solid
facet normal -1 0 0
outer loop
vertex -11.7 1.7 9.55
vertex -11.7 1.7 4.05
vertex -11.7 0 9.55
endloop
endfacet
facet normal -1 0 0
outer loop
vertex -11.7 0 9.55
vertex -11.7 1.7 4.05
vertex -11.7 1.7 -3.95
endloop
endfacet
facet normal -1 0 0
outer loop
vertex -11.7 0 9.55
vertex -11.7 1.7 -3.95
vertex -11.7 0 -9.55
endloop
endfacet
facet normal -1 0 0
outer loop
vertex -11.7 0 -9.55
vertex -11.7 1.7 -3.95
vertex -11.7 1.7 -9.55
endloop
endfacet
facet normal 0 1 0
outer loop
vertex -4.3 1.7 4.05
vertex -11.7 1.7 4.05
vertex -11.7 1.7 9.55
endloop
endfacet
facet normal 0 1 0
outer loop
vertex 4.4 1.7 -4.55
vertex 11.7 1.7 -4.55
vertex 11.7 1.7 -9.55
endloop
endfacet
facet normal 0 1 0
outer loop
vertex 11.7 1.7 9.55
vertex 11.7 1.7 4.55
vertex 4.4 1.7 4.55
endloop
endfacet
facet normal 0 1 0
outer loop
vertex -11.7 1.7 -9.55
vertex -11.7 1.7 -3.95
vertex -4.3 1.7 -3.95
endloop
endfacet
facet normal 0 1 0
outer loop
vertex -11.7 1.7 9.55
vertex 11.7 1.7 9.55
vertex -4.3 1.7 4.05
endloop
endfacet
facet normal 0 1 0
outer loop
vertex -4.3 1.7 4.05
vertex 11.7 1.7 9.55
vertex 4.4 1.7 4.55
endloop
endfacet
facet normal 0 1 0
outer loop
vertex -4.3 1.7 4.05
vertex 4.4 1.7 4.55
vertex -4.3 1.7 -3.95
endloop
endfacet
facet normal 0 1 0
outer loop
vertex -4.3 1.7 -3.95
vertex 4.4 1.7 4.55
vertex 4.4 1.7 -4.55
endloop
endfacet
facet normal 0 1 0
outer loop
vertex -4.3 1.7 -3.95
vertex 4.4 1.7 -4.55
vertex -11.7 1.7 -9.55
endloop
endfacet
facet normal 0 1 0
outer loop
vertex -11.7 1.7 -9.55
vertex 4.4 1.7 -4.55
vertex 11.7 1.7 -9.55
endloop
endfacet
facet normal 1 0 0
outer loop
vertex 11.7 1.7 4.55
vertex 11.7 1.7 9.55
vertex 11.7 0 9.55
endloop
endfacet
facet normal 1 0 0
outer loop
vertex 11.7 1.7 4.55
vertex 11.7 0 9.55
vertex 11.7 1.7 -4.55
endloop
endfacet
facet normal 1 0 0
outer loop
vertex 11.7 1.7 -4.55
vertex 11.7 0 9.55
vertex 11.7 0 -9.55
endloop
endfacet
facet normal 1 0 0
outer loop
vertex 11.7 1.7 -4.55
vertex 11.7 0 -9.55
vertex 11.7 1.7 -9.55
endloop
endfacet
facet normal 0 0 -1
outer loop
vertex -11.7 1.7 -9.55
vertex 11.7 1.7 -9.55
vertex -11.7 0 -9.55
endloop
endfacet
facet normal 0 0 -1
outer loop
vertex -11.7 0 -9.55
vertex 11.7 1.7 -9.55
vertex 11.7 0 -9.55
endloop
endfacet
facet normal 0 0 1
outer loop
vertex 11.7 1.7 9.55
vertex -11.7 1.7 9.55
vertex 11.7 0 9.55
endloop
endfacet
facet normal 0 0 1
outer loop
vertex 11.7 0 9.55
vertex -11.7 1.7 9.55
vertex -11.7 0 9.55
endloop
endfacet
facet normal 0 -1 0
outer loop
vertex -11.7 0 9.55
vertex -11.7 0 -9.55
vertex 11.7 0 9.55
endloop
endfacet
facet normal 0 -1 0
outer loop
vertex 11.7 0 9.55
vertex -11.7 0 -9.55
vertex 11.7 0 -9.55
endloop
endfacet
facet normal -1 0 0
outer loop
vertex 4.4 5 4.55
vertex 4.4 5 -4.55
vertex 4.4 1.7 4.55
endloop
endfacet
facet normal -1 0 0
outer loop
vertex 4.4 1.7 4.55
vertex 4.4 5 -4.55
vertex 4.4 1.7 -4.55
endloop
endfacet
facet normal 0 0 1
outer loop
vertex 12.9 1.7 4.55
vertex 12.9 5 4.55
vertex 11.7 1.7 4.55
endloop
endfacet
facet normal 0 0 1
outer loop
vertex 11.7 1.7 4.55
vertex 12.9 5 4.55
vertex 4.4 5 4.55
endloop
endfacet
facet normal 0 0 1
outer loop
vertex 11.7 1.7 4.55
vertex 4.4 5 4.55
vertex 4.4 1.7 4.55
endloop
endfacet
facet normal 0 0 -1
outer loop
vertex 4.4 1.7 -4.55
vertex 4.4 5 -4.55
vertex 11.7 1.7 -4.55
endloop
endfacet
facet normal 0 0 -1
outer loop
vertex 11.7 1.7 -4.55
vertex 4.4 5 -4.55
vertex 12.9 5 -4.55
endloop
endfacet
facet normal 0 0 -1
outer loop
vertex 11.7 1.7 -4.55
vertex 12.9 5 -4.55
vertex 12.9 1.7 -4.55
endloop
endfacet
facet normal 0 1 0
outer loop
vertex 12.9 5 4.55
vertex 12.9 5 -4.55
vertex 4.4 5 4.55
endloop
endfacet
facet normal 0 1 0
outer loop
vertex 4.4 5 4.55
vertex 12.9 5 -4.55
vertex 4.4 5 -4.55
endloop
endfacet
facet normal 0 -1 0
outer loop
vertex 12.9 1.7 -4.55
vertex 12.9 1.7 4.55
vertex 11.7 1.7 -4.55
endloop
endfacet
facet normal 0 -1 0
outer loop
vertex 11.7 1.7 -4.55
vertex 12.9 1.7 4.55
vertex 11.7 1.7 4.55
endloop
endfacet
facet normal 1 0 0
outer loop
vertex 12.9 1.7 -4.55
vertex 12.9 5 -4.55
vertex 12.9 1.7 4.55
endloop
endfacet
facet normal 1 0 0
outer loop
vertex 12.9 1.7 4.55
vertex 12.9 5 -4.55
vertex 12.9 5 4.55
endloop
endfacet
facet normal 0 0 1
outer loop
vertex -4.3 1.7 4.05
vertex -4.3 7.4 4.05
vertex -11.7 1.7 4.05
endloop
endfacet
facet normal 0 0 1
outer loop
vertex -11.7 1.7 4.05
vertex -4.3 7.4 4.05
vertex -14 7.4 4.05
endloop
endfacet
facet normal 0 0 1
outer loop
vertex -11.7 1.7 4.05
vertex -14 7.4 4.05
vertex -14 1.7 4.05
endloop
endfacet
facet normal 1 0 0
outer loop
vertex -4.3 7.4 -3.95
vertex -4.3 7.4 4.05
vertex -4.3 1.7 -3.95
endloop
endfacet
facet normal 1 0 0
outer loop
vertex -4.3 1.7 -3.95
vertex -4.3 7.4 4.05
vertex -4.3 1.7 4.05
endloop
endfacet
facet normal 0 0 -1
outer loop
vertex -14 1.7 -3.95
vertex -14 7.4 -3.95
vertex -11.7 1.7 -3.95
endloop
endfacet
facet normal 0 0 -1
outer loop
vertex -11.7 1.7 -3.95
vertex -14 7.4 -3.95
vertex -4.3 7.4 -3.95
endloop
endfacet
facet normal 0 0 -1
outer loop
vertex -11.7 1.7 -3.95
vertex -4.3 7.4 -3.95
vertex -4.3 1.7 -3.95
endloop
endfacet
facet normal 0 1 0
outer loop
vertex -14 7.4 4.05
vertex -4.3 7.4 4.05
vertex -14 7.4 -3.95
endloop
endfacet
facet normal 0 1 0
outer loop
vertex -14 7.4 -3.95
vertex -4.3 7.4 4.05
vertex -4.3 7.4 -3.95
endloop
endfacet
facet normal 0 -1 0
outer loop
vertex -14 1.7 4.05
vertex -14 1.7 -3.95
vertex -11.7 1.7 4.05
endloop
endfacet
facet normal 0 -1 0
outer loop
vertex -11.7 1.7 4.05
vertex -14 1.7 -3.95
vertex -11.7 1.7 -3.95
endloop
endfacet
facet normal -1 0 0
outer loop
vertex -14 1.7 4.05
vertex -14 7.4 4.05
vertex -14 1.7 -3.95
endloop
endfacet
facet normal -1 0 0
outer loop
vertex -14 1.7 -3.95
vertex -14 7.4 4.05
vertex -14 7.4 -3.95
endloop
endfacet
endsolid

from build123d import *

# Parameters (mm, degrees)
SKETCH1_W           = 23.4
SKETCH1_H           = 19.1
BOSS_EXTRUDE1_DEPTH = 1.7
SKETCH2_W           = 7.3
SKETCH2_H           = 9.1
BOSS_EXTRUDE2_DEPTH = 3.3
SKETCH3_W           = 9.1
SKETCH3_H           = 3.3
BOSS_EXTRUDE3_DEPTH = 1.2
SKETCH4_W           = 7.4
SKETCH4_H           = 8
BOSS_EXTRUDE5_DEPTH = 5.7
SKETCH5_W           = 8
SKETCH5_H           = 5.7
BOSS_EXTRUDE6_DEPTH = 2.3


with BuildPart() as part:
    # Sketch1 → Boss-Extrude1 (new body)
    with BuildSketch(Plane(origin=(0, 0, 0), x_dir=(1, 0, 0), z_dir=(0, 1, 0))):
        Rectangle(SKETCH1_W, SKETCH1_H)
    extrude(amount=BOSS_EXTRUDE1_DEPTH)

    # Sketch2 → Boss-Extrude2 (add)
    with BuildSketch(Plane(origin=(0, 1.7, 0), x_dir=(1, 0, 0), z_dir=(0, 1, 0))):
        with Locations((8.05, 0)):
            Rectangle(SKETCH2_W, SKETCH2_H)
    extrude(amount=BOSS_EXTRUDE2_DEPTH)

    # Sketch3 → Boss-Extrude3 (add)
    with BuildSketch(Plane(origin=(11.7, 0, 0), x_dir=(0, 0, -1), z_dir=(1, 0, 0))):
        with Locations((0, 3.35)):
            Rectangle(SKETCH3_W, SKETCH3_H)
    extrude(amount=BOSS_EXTRUDE3_DEPTH)

    # Sketch4 → Boss-Extrude5 (add)
    with BuildSketch(Plane(origin=(0, 1.7, 0), x_dir=(1, 0, 0), z_dir=(0, 1, 0))):
        with Locations((-8, -0.05)):
            Rectangle(SKETCH4_W, SKETCH4_H)
    extrude(amount=BOSS_EXTRUDE5_DEPTH)

    # Sketch5 → Boss-Extrude6 (add)
    with BuildSketch(Plane.ZY.offset(11.7)):
        with Locations((0.05, 4.55)):
            Rectangle(SKETCH5_W, SKETCH5_H)
    extrude(amount=BOSS_EXTRUDE6_DEPTH)


solid = part.part
